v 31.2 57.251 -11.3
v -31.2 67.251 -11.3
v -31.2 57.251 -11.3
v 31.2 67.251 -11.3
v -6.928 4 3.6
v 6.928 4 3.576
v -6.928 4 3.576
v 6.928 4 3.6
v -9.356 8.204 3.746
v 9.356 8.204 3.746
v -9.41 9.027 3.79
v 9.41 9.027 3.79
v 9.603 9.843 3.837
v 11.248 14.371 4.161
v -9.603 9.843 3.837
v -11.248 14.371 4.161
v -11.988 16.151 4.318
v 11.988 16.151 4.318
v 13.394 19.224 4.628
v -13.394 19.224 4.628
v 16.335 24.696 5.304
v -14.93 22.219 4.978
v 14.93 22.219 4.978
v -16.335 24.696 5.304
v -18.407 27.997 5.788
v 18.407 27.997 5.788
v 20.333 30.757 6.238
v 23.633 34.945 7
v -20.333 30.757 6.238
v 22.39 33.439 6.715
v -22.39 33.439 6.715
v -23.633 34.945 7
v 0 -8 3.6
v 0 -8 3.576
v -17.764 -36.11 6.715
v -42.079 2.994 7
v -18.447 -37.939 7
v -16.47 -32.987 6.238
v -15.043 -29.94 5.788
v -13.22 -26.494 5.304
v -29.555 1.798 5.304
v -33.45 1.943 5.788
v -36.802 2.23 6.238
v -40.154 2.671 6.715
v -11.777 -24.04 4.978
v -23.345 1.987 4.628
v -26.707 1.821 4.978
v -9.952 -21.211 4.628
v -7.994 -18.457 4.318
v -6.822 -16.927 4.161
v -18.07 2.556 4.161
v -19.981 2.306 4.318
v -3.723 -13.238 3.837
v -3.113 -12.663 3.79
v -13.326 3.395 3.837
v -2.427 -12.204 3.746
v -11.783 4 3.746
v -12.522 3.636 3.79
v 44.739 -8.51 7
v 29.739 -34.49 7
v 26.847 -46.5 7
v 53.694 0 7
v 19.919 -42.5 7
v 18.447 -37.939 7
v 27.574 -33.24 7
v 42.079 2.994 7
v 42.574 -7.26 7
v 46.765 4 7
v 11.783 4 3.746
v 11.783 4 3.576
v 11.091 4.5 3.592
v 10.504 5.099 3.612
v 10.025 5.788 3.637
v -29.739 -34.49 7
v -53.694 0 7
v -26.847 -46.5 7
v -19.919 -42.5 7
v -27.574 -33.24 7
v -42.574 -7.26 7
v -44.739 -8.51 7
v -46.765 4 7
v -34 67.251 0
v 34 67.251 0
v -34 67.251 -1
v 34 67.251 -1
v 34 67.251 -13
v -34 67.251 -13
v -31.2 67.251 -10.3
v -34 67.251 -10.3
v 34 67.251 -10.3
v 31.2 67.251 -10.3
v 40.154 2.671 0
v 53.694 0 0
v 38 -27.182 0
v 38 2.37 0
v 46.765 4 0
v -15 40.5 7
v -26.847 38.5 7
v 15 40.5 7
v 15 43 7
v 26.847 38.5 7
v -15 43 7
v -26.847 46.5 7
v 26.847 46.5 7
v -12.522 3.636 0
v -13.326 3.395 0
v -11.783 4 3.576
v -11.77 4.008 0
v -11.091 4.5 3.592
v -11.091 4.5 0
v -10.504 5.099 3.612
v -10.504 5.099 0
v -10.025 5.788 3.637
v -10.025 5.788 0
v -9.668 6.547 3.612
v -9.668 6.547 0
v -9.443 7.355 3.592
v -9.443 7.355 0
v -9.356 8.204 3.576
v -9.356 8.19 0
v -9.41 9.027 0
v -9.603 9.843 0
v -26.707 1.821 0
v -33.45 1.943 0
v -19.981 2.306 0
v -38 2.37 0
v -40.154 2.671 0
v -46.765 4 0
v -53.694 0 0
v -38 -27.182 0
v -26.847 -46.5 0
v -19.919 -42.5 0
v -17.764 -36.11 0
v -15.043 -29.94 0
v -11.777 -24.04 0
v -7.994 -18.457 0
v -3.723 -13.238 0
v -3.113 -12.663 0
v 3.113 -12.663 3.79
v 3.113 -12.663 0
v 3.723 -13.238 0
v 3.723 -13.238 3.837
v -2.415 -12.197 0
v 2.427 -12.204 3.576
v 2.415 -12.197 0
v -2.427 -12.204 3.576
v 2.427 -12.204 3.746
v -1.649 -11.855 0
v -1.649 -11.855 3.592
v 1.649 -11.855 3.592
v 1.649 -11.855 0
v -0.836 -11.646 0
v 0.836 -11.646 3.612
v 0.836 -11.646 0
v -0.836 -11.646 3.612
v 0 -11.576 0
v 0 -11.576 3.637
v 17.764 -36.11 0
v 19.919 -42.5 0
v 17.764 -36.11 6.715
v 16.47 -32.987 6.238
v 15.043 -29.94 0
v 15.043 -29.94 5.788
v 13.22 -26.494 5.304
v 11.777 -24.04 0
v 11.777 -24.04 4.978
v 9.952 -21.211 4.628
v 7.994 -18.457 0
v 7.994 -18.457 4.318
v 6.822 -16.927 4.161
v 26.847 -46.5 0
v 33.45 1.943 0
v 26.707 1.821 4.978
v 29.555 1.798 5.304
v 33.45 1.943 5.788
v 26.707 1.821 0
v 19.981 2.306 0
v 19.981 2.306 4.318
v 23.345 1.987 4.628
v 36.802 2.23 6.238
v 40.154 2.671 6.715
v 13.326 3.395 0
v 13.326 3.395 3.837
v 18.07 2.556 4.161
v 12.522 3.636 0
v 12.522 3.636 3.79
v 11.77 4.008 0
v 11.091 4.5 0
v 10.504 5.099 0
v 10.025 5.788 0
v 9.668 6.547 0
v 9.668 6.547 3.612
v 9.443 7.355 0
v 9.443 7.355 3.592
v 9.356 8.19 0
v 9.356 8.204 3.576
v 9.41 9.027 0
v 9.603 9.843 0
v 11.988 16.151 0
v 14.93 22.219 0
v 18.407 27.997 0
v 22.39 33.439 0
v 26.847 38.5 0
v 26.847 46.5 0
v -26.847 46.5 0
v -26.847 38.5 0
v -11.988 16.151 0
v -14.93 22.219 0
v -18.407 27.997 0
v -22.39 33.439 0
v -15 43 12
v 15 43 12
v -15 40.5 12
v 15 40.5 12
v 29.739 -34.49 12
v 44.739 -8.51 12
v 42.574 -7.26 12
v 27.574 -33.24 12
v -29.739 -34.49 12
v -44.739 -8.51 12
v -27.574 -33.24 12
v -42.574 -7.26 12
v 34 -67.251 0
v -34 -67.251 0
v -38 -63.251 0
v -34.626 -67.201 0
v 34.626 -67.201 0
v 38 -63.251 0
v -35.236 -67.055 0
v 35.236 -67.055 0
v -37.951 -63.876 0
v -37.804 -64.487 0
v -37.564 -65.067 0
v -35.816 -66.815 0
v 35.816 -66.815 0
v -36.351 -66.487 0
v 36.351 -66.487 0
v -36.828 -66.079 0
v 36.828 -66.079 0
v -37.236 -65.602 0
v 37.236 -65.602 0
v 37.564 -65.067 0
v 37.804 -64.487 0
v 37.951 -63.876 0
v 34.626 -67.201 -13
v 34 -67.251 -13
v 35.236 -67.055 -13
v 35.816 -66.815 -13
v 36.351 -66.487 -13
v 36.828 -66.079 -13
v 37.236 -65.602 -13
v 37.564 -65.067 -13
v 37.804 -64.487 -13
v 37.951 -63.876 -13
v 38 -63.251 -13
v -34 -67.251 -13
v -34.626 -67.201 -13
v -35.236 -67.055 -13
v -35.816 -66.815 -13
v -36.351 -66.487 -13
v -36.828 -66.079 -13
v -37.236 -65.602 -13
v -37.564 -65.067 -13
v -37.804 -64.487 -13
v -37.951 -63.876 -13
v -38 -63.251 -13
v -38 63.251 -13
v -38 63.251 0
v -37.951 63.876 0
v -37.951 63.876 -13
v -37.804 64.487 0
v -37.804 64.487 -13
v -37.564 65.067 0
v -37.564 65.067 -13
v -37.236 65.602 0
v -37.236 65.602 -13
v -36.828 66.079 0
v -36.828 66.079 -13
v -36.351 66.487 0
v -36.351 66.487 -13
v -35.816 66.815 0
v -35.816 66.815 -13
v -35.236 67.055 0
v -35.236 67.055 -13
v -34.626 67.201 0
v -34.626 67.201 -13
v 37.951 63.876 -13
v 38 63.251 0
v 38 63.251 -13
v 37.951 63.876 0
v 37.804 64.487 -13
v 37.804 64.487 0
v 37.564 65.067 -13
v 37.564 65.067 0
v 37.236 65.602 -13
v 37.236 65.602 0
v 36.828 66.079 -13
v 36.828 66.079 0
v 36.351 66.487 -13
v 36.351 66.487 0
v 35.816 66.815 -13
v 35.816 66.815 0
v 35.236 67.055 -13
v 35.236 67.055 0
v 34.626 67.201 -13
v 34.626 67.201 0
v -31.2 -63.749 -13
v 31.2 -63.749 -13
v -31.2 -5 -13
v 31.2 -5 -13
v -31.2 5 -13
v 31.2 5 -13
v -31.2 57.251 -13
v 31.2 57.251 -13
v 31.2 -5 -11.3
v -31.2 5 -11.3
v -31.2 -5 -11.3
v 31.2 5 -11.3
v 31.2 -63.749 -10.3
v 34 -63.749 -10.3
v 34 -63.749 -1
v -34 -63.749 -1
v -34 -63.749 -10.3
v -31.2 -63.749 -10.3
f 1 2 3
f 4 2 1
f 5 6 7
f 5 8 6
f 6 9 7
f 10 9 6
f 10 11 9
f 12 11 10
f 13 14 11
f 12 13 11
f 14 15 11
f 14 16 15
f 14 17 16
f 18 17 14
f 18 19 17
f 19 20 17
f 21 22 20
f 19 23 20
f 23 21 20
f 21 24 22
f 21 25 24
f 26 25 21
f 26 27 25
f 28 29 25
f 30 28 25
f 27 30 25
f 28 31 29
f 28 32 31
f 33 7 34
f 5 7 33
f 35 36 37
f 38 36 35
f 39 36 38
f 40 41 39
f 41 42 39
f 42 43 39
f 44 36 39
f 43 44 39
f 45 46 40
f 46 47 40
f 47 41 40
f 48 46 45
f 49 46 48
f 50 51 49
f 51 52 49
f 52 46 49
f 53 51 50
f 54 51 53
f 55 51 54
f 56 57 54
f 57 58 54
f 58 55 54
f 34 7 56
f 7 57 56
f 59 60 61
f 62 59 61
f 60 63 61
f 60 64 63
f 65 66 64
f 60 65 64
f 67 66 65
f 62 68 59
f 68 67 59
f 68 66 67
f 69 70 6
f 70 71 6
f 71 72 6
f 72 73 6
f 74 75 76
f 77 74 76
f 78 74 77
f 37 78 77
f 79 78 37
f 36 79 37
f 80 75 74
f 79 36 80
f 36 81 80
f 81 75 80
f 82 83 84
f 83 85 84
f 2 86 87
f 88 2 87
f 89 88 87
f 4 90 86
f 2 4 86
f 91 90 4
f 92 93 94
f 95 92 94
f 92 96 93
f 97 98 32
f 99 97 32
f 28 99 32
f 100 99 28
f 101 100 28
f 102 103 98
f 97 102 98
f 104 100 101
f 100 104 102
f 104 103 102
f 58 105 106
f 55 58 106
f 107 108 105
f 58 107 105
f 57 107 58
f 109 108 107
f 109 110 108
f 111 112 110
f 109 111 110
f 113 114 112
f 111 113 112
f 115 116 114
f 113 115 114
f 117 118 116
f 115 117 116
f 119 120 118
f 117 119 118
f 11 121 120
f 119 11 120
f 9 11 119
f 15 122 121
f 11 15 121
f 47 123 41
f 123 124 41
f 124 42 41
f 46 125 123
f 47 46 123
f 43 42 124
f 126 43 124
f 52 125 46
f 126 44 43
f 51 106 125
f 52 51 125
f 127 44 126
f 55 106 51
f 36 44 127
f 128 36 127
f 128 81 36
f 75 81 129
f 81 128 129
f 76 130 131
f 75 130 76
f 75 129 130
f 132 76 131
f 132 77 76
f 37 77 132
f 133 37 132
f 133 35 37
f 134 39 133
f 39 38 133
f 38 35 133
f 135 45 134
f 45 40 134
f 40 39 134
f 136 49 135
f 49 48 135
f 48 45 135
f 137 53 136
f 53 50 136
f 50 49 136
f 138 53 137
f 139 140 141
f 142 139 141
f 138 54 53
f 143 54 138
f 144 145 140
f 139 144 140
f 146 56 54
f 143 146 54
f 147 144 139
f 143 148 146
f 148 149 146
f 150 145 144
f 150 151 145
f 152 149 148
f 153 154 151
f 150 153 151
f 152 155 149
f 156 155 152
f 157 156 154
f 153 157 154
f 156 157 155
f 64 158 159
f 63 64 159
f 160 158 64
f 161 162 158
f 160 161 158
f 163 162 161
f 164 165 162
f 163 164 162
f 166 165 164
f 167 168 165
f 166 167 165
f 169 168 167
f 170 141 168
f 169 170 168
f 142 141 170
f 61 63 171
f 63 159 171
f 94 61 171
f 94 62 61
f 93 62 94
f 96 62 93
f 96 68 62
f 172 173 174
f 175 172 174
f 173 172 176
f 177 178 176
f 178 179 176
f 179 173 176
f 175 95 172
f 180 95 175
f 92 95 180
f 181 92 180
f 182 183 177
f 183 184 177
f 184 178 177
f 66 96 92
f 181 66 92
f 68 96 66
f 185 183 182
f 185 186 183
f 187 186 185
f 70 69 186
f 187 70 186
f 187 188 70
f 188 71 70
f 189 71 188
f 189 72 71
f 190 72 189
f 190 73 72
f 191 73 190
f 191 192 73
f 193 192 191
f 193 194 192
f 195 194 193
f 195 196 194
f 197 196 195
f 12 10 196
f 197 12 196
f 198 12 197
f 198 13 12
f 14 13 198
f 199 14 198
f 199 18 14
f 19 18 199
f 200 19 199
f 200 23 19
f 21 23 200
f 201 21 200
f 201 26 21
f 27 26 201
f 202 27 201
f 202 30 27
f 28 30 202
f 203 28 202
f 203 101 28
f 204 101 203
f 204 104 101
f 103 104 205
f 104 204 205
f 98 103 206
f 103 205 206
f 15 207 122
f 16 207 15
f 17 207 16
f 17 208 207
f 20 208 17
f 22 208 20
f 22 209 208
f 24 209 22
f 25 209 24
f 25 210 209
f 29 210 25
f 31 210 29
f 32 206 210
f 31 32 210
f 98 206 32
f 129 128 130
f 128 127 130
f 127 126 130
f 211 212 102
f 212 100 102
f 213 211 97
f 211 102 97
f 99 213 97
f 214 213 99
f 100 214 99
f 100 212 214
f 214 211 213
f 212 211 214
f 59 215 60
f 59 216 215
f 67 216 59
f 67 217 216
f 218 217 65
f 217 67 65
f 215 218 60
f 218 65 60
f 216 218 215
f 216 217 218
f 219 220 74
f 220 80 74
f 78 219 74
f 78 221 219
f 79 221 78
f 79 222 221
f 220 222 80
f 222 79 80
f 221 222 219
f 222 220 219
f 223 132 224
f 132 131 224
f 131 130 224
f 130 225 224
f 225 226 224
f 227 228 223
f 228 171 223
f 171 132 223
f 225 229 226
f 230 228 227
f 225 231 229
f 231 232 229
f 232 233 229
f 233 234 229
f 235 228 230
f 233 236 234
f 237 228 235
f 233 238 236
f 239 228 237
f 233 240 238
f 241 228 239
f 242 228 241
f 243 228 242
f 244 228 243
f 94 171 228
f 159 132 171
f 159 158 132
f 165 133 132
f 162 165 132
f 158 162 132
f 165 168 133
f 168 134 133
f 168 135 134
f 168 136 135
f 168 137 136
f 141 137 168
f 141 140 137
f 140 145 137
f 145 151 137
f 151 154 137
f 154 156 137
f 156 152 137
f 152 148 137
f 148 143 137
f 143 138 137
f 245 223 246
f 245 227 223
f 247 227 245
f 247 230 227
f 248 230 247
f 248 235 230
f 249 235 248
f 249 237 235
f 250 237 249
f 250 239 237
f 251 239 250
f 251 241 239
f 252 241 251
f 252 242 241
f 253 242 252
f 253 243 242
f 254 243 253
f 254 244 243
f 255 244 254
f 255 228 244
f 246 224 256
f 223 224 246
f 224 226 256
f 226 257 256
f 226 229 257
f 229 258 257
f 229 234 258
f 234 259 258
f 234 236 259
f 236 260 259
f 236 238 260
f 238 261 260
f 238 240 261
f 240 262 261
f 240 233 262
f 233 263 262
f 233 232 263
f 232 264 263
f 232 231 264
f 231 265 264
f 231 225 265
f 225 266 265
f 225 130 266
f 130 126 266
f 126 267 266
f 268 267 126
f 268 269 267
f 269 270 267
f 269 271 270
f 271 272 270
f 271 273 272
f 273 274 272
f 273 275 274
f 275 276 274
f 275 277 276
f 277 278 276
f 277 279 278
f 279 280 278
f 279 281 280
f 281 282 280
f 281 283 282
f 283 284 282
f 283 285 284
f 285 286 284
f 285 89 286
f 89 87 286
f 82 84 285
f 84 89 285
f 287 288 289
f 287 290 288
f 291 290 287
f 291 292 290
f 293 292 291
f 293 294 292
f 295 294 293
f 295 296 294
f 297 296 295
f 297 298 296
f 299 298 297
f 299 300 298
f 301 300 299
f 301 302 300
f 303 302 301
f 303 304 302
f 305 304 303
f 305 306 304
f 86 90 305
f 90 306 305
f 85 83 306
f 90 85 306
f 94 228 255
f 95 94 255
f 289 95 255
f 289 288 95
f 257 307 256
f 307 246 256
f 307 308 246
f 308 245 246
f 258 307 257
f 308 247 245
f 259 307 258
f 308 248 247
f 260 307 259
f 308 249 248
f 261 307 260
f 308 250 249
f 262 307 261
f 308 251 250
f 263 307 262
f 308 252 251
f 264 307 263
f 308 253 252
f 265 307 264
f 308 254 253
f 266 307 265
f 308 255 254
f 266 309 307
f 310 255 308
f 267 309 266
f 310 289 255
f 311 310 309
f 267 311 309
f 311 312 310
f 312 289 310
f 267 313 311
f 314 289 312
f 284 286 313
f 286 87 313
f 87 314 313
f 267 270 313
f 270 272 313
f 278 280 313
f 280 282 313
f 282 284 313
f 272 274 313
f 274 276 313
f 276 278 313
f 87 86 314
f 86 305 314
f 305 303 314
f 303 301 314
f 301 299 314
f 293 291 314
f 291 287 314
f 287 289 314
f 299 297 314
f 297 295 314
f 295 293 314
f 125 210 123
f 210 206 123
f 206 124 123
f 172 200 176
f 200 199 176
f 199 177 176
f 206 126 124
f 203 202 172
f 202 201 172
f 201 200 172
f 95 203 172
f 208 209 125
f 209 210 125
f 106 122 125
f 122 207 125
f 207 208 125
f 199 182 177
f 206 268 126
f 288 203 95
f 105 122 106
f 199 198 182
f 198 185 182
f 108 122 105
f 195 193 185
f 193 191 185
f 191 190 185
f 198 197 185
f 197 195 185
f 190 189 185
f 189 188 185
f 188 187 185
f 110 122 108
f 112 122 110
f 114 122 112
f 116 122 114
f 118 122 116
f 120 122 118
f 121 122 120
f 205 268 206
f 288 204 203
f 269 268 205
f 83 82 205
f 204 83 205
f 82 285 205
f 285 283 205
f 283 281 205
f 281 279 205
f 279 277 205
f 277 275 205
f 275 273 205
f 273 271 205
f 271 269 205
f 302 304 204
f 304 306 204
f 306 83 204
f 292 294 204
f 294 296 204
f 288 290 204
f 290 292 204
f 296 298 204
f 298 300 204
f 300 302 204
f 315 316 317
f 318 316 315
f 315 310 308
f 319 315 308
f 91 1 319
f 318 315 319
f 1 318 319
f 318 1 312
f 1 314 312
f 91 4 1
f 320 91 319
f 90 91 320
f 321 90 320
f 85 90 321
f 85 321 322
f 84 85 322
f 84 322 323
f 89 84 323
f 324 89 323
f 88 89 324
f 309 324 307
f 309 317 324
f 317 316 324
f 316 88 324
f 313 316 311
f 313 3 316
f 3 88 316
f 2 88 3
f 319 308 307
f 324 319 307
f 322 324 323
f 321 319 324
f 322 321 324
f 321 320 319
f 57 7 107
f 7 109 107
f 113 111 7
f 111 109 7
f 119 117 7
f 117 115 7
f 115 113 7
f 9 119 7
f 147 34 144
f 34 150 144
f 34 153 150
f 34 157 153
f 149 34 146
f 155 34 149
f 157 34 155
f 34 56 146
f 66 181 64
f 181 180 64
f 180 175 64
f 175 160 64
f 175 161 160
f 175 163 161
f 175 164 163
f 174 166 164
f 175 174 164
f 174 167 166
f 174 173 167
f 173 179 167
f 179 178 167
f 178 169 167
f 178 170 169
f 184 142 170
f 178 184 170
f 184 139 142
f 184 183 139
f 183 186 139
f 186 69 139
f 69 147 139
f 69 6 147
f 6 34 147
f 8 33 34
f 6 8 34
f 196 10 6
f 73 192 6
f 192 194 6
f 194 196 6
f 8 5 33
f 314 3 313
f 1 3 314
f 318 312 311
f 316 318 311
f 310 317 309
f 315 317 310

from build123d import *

# Parameters (mm, degrees)
RESSALTO_EXTRUS_O1_DEPTH = 7
RESSALTO_EXTRUS_O2_DEPTH = 5
RESSALTO_EXTRUS_O3_DEPTH = 13
CORTE_EXTRUS_O1_DEPTH    = 131
CORTE_EXTRUS_O2_DEPTH    = 60
CORTE_EXTRUS_O3_DEPTH    = 58
CORTE_EXTRUS_O4_DEPTH    = 53
CORTE_EXTRUS_O5_DEPTH    = 3.4
ESBO_O13_W               = 62.4
ESBO_O13_H               = 52.25073341
ESBO_O13_H_2             = 58.74926659
CORTE_EXTRUS_O6_DEPTH    = 3.4


with BuildPart() as part:
    # Esboço1 → Ressalto-extrusão1 (new body)
    with BuildSketch(Plane.XY):
        with BuildLine():
            Line((-26.846787517, 46.5), (26.846787517, 46.5))
            Line((26.846787517, 46.5), (26.846787517, 38.5))
            ThreePointArc((26.846787517, 38.5), (16.603731122, 25.147195766), (9.603000417, 9.843361122))
            ThreePointArc((9.603000417, 9.843361122), (10.024733627, 5.787782658), (13.326100999, 3.394761752))
            ThreePointArc((13.326100999, 3.394761752), (30.079975929, 1.805655066), (46.765371804, 4))
            Line((46.765371804, 4), (53.693575035, 0))
            Line((53.693575035, 0), (26.846787517, -46.5))
            Line((26.846787517, -46.5), (19.918584287, -42.5))
            ThreePointArc((19.918584287, -42.5), (13.476244807, -26.952850832), (3.723100582, -13.238122875))
            ThreePointArc((3.723100582, -13.238122875), (0, -11.575565317), (-3.723100582, -13.238122875))
            ThreePointArc((-3.723100582, -13.238122875), (-13.476244807, -26.952850832), (-19.918584287, -42.5))
            Line((-19.918584287, -42.5), (-26.846787517, -46.5))
            Line((-26.846787517, -46.5), (-53.693575035, 0))
            Line((-53.693575035, 0), (-46.765371804, 4))
            ThreePointArc((-46.765371804, 4), (-30.079975929, 1.805655066), (-13.326100999, 3.394761752))
            ThreePointArc((-13.326100999, 3.394761752), (-10.024733627, 5.787782658), (-9.603000417, 9.843361122))
            ThreePointArc((-9.603000417, 9.843361122), (-16.603731122, 25.147195766), (-26.846787517, 38.5))
            Line((-26.846787517, 38.5), (-26.846787517, 46.5))
        make_face()
    extrude(amount=RESSALTO_EXTRUS_O1_DEPTH)

    # Esboço2 → Ressalto-extrusão2 (add)
    with BuildSketch(Plane.XY.offset(7)):
        Polygon((37.239092363, -21.5), (44.739092363, -8.509618943), (42.574028853, -7.259618943), (27.574028853, -33.240381057), (29.739092363, -34.490381057), align=None)
        Polygon((0, 43), (-15, 43), (-15, 40.5), (15, 40.5), (15, 43), align=None)
        Polygon((-37.239092363, -21.5), (-29.739092363, -34.490381057), (-27.574028853, -33.240381057), (-42.574028853, -7.259618943), (-44.739092363, -8.509618943), align=None)
    extrude(amount=RESSALTO_EXTRUS_O2_DEPTH)

    # Esboço3 → Ressalto-extrusão3 (add)
    with BuildSketch(Plane(origin=(0, 0, 0), x_dir=(-1, 0, 0), z_dir=(0, 0, -1))):
        with BuildLine():
            Line((38, 63.25073341), (38, -63.25073341))
            ThreePointArc((38, -63.25073341), (36.828427125, -66.079160535), (34, -67.25073341))
            Line((34, -67.25073341), (-34, -67.25073341))
            ThreePointArc((-34, -67.25073341), (-36.828427125, -66.079160535), (-38, -63.25073341))
            Line((-38, -63.25073341), (-38, 63.25073341))
            ThreePointArc((-38, 63.25073341), (-36.828427125, 66.079160535), (-34, 67.25073341))
            Line((-34, 67.25073341), (34, 67.25073341))
            ThreePointArc((34, 67.25073341), (36.828427125, 66.079160535), (38, 63.25073341))
        make_face()
    extrude(amount=RESSALTO_EXTRUS_O3_DEPTH)

    # Esboço4 → Corte-extrusão1 (cut)
    with BuildSketch(Plane(origin=(0, 67.25073341, 0), x_dir=(1, 0, 0), z_dir=(0, 1, 0))):
        Polygon((0, 1), (34, 1), (34, 10.3), (31.2, 10.3), (31.2, 11.3), (-31.2, 11.3), (-31.2, 10.3), (-34, 10.3), (-34, 1), align=None)
    extrude(amount=-CORTE_EXTRUS_O1_DEPTH, mode=Mode.SUBTRACT)

    # Esboço6 → Corte-extrusão2 (cut)
    with BuildSketch(Plane.ZY.offset(26.846787517)):
        with BuildLine():
            Line((18.516337651, 34.944688344), (7, 34.944688344))
            ThreePointArc((7, 34.944688344), (4.663173788, 19.541492285), (3.576332881, 4))
            Line((3.576332881, 4), (21.222643852, 4))
            Line((21.222643852, 4), (18.516337651, 34.944688344))
        make_face()
    extrude(amount=-CORTE_EXTRUS_O2_DEPTH, mode=Mode.SUBTRACT)

    # Esboço8 → Corte-extrusão3 (cut)
    with BuildSketch(Plane(origin=(13.423393759, -23.25, 0), x_dir=(0.8660254037844386, 0.5000000000000003, 0), z_dir=(0.5000000000000003, -0.8660254037844386, 0))):
        with BuildLine():
            Line((-34.944688344, 18.516337651), (-34.944688344, 7))
            ThreePointArc((-34.944688344, 7), (-19.541492285, 4.663173788), (-4, 3.576332881))
            Line((-4, 3.576332881), (-4, 21.222643852))
            Line((-4, 21.222643852), (-34.944688344, 18.516337651))
        make_face()
    extrude(amount=-CORTE_EXTRUS_O3_DEPTH, mode=Mode.SUBTRACT)

    # Esboço10 → Corte-extrusão4 (cut)
    with BuildSketch(Plane(origin=(13.423393759, 23.25, 0), x_dir=(0.8660254037845888, -0.4999999999997399, 0), z_dir=(0.49999999999973993, 0.8660254037845889, 0))):
        with BuildLine():
            Line((34.944688344, -18.516337651), (34.944688344, -7))
            ThreePointArc((34.944688344, -7), (19.541492285, -4.663173788), (4, -3.576332881))
            Line((4, -3.576332881), (4, -21.222643852))
            Line((4, -21.222643852), (34.944688344, -18.516337651))
        make_face()
    extrude(amount=-CORTE_EXTRUS_O4_DEPTH, mode=Mode.SUBTRACT)

    # Esboço11 → Corte-extrusão5 (cut)
    with BuildSketch(Plane.XY.offset(7)):
        Polygon((-6.92820323, 4), (6.92820323, 4), (0, -8), align=None)
    extrude(amount=-CORTE_EXTRUS_O5_DEPTH, mode=Mode.SUBTRACT)

    # Esboço13 → Corte-extrusão6 (cut)
    with BuildSketch(Plane(origin=(0, 0, -13), x_dir=(-1, 0, 0), z_dir=(0, 0, -1))):
        with Locations((0, 31.125366705)):
            Rectangle(ESBO_O13_W, ESBO_O13_H)
        with Locations((0, -34.374633295)):
            Rectangle(ESBO_O13_W, ESBO_O13_H_2)
    extrude(amount=-CORTE_EXTRUS_O6_DEPTH, mode=Mode.SUBTRACT)


solid = part.part
